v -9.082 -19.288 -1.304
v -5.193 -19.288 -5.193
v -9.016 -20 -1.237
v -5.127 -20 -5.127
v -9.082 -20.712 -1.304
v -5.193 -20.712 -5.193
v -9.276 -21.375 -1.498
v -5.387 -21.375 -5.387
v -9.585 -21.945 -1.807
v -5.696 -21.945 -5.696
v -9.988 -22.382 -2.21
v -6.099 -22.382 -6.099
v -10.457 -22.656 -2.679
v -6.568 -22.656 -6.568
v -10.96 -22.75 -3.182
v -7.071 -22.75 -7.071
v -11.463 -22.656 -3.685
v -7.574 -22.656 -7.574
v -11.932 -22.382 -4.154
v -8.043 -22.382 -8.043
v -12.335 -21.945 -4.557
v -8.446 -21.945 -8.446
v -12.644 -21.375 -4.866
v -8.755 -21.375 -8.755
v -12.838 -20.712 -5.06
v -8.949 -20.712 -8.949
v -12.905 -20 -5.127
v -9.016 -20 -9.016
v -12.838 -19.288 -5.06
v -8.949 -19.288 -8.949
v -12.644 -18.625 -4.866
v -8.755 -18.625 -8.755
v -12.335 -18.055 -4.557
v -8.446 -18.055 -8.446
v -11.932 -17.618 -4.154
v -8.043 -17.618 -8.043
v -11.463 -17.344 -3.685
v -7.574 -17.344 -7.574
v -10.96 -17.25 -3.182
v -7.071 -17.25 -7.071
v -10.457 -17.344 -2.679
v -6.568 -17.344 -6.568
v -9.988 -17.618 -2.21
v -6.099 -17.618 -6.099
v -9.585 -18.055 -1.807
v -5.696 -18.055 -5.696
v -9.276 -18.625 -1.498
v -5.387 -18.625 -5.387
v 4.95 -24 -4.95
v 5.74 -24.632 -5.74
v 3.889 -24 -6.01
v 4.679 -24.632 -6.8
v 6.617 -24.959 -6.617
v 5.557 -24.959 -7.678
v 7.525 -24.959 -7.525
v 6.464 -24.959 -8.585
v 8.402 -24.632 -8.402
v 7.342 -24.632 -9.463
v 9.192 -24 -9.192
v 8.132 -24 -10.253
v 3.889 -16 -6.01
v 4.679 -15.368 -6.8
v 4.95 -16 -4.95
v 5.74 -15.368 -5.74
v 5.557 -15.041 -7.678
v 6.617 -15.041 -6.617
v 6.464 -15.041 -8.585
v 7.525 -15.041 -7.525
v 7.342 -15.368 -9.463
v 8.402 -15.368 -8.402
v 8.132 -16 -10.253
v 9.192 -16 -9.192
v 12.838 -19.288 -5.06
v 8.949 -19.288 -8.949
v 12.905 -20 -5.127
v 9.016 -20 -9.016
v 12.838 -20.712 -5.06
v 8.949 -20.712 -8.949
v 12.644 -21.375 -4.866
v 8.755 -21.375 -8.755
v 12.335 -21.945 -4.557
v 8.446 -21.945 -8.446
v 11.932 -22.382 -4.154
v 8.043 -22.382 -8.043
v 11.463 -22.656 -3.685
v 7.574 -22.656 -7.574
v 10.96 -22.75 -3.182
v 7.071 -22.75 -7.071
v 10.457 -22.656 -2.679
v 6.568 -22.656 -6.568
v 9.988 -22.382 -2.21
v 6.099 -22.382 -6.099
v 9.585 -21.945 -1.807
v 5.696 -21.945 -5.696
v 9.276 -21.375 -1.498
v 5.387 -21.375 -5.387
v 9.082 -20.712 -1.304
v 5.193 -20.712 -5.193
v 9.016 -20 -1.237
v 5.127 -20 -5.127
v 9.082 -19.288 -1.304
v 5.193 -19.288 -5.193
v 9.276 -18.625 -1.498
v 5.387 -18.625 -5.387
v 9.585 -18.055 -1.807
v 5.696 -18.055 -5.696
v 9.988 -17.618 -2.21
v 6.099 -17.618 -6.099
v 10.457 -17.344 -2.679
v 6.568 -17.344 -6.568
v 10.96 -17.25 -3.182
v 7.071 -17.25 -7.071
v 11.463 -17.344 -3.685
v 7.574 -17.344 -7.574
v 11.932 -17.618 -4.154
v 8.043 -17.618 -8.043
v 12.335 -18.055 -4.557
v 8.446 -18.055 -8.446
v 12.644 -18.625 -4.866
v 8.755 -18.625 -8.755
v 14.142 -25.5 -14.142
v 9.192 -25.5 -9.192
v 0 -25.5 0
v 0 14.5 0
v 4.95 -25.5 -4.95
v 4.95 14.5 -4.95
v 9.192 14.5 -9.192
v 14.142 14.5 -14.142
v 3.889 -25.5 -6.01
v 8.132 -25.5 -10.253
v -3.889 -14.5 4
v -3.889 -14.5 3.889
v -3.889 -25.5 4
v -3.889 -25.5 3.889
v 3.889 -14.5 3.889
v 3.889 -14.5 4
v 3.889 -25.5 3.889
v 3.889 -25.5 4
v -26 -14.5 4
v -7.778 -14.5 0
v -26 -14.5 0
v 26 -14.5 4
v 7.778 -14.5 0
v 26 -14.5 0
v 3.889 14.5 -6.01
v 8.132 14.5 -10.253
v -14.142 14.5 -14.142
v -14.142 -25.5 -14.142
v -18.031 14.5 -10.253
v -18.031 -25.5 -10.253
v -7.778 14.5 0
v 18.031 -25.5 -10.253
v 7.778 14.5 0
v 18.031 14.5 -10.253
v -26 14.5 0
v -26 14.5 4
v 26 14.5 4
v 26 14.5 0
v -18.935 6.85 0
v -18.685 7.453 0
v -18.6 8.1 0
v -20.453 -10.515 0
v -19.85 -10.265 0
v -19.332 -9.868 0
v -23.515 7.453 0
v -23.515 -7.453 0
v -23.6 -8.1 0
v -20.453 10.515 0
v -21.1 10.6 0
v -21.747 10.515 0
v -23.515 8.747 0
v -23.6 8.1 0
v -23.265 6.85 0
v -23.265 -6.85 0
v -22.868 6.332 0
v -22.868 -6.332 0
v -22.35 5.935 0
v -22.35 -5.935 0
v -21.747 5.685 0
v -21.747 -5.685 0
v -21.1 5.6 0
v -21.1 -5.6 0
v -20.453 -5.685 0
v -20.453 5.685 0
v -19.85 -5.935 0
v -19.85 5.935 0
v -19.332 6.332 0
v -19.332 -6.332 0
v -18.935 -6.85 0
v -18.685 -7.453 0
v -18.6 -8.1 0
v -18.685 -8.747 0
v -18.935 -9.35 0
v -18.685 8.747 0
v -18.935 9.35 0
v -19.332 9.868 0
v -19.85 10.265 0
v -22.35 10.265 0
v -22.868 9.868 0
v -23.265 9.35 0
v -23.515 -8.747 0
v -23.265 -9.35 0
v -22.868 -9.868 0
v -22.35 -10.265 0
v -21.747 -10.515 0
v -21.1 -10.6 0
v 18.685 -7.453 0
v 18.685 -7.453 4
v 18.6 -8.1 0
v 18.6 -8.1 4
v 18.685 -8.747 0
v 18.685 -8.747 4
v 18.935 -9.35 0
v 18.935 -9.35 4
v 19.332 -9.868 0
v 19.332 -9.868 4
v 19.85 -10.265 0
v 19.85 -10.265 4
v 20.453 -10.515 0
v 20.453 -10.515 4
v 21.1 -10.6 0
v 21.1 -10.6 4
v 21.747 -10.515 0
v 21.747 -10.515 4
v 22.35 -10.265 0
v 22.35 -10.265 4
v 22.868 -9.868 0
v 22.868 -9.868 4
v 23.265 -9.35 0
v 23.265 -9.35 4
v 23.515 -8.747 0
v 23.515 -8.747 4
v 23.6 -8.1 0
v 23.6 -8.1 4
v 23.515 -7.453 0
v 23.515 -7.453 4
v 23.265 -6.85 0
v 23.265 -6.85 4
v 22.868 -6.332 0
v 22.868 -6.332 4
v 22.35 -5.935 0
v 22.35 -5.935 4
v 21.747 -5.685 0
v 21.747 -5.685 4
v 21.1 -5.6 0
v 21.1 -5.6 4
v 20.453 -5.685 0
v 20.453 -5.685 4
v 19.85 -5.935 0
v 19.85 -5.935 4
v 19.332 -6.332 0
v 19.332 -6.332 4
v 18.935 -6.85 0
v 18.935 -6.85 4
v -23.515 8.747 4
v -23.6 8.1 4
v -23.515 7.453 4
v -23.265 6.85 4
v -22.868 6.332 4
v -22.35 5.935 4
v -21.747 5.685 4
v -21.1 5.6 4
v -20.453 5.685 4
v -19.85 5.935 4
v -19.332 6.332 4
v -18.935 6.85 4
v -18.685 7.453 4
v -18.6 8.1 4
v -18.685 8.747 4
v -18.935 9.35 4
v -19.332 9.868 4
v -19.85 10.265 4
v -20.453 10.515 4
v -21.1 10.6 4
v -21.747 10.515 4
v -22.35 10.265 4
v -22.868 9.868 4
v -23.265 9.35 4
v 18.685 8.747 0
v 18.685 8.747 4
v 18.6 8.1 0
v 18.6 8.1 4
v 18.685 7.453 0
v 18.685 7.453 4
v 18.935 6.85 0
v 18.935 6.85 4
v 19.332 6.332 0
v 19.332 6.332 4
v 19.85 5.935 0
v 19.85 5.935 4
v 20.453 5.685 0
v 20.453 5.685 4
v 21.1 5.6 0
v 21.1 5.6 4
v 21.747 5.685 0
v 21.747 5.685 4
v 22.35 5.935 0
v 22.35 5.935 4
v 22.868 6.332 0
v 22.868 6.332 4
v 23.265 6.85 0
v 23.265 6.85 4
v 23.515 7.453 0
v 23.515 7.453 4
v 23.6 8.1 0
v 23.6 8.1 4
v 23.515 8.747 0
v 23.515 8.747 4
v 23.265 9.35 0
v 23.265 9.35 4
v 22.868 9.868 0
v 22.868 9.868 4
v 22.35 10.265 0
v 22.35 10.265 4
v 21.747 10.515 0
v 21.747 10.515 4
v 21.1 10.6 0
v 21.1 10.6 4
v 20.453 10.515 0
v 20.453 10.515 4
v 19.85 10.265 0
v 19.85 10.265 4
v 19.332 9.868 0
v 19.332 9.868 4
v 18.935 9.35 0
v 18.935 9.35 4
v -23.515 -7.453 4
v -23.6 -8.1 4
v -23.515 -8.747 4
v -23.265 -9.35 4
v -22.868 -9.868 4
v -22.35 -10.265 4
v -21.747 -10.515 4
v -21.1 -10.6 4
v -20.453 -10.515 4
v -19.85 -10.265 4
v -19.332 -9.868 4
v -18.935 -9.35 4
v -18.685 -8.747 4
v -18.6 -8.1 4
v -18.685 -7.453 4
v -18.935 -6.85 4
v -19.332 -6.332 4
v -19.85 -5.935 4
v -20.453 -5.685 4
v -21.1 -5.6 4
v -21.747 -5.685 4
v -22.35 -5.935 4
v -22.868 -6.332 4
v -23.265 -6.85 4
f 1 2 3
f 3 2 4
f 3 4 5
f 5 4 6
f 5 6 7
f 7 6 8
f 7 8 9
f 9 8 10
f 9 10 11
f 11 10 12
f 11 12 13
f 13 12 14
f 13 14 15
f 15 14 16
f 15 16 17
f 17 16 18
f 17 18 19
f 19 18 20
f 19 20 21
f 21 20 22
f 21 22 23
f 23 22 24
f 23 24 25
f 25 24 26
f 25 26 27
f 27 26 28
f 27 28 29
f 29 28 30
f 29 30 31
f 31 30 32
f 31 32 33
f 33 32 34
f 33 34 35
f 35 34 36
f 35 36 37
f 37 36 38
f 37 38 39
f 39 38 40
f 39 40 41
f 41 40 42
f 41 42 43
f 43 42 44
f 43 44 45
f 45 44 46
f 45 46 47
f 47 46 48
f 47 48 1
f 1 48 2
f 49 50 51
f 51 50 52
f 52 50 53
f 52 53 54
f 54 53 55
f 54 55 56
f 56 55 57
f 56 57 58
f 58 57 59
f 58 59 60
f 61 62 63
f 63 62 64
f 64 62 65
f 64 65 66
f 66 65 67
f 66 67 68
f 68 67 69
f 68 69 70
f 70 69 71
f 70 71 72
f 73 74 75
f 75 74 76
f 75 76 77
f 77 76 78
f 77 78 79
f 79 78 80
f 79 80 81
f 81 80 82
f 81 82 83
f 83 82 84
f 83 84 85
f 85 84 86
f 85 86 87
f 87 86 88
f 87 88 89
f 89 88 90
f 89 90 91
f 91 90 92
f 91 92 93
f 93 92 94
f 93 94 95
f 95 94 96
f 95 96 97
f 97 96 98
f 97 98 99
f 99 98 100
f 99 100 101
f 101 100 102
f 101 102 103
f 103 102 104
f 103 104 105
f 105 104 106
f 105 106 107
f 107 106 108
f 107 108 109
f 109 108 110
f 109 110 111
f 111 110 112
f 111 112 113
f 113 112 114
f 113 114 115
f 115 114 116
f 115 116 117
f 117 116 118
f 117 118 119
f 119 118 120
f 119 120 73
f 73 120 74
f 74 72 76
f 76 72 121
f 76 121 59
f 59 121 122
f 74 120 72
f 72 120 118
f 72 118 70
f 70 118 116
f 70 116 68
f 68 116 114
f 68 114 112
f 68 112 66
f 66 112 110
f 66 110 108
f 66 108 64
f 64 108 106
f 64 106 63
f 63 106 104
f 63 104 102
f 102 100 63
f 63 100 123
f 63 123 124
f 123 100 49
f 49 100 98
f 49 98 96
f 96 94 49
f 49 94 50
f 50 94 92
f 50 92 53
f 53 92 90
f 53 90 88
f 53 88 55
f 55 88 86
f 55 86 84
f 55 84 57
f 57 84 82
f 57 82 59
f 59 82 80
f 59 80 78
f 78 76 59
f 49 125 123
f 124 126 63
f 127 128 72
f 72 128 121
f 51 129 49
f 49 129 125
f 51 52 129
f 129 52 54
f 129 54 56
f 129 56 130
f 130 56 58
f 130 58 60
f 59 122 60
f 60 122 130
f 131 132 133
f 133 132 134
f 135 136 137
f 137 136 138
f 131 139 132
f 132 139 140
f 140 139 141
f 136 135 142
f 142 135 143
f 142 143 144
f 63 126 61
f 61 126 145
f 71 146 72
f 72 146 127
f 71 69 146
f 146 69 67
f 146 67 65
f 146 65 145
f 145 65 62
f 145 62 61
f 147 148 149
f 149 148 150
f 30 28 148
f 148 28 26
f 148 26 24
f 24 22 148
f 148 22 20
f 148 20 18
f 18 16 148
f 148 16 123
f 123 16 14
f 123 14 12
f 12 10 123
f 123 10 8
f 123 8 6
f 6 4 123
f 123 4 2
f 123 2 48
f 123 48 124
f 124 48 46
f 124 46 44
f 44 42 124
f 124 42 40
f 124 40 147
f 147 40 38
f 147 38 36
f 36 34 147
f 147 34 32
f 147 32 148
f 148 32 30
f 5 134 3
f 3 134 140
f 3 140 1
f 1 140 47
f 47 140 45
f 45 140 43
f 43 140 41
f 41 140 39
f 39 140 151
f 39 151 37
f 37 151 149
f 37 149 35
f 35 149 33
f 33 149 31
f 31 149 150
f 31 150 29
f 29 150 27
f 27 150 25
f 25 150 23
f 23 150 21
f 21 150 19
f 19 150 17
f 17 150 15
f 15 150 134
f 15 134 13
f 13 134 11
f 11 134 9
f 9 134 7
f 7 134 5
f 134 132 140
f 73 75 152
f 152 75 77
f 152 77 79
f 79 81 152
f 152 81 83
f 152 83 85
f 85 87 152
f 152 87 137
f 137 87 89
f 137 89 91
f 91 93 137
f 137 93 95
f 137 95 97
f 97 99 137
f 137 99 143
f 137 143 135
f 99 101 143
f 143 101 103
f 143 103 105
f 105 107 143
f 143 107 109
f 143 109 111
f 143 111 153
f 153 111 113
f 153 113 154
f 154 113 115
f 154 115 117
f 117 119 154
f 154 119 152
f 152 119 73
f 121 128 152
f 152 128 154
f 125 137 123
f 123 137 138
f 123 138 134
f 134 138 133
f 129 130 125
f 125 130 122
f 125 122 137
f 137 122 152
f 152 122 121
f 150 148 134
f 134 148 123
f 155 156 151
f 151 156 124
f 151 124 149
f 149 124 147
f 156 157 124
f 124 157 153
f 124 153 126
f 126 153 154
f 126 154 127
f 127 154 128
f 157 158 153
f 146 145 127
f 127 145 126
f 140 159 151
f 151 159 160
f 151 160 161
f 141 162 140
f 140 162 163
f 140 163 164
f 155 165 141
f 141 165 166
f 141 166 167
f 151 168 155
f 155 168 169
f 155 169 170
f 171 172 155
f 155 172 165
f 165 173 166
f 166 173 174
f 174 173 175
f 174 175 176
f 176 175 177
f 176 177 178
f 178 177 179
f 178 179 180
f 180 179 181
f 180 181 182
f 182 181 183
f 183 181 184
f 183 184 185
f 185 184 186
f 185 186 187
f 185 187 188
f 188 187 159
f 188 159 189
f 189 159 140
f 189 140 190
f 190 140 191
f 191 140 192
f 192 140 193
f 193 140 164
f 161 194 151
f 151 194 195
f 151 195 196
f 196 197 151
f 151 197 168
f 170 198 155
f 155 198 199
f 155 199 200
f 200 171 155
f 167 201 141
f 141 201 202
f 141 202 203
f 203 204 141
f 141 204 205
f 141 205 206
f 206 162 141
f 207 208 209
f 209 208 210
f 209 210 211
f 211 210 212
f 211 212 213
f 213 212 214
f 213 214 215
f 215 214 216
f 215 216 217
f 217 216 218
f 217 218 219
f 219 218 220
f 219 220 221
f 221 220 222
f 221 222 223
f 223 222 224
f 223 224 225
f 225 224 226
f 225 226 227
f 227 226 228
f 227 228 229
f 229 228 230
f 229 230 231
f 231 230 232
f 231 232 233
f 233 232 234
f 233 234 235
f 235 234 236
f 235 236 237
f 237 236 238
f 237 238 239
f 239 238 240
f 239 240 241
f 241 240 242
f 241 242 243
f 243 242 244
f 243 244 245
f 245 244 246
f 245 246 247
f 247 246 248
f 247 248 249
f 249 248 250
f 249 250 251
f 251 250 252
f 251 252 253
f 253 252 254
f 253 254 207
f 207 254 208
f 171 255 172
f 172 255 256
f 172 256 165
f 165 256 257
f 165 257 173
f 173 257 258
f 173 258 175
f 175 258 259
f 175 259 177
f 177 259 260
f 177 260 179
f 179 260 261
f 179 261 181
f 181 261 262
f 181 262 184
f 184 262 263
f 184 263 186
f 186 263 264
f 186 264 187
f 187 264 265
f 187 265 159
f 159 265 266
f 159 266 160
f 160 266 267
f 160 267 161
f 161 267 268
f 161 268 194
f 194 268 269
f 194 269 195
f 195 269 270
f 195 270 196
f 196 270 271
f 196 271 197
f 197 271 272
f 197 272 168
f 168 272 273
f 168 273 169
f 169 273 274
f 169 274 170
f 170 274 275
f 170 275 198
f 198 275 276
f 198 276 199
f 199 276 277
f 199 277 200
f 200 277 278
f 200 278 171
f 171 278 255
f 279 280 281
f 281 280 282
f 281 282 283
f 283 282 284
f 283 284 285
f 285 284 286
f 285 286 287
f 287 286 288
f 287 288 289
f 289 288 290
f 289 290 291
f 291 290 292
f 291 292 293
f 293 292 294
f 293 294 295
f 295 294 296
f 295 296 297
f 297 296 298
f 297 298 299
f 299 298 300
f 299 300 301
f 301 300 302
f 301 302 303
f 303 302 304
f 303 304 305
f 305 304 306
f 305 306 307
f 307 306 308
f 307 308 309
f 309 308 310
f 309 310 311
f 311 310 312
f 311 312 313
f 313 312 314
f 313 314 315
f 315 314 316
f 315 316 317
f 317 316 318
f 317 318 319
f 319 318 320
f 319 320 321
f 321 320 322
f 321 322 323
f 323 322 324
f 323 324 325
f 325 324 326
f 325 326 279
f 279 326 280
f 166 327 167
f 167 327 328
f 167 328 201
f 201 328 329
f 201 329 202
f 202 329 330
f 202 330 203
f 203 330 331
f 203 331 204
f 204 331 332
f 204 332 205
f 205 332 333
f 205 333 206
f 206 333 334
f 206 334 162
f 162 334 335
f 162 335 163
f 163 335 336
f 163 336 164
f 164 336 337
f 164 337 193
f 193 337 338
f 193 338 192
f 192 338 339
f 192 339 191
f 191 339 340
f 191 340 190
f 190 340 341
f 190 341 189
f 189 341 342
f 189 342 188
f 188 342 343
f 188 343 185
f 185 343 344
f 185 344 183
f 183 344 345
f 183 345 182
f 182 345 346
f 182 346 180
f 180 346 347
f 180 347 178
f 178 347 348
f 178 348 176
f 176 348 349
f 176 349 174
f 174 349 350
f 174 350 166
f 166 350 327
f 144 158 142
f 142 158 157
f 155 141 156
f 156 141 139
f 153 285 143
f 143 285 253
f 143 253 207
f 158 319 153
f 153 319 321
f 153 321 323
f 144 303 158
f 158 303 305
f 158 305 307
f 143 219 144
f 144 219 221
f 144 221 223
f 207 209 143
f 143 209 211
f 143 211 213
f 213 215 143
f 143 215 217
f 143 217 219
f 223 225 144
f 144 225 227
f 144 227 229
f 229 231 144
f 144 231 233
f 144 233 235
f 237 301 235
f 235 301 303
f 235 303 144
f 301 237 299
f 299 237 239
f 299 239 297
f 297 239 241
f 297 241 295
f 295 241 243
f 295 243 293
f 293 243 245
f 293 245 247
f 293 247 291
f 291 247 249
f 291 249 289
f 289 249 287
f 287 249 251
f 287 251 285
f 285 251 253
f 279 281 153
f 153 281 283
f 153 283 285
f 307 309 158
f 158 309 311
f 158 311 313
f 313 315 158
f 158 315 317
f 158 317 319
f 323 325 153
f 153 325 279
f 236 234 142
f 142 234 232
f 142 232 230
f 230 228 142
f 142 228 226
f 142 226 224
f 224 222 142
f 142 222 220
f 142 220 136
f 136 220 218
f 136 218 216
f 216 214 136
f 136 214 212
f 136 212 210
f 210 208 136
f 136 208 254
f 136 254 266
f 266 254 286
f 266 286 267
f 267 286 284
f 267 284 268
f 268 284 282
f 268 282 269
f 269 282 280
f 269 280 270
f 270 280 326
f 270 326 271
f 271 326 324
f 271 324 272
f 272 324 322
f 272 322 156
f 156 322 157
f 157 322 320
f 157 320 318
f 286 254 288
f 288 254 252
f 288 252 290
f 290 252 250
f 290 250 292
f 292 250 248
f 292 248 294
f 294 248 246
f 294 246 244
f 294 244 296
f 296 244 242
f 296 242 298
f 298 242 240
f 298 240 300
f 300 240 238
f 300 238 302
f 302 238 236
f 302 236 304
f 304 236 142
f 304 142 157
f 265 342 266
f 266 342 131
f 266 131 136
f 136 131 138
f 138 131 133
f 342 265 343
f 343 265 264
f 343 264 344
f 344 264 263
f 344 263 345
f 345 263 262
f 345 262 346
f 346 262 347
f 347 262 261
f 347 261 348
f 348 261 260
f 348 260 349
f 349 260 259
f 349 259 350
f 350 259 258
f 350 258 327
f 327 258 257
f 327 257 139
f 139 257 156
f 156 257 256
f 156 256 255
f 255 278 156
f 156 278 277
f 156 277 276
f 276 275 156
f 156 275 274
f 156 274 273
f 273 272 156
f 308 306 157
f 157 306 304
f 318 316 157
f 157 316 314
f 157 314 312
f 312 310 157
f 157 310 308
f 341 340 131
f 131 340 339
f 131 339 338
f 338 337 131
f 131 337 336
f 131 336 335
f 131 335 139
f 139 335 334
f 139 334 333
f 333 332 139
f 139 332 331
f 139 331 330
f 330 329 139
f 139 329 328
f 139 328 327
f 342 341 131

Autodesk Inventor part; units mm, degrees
ref_plane "YZ Plane" through (0, 0, 0) normal (1, 0, 0) x (0, 1, 0)
sketch "Sketch1" plane through (0, 0, 0) normal (0, 0, 1) x (1, 0, 0)
  line L0 (-26, 14.5) -> (26, 14.5)
  line L1 (26, 14.5) -> (26, -14.5)
  line L2 (26, -14.5) -> (-26, -14.5)
  line L3 (-26, -14.5) -> (-26, 14.5)
  line L4 (-26, 14.5) -> (26, -14.5) construction
  line L5 (26, 14.5) -> (-26, -14.5) construction
  point P0 (0, 0)
  dimension "d0" = 52
  dimension "d1" = 29
extrude "Extrusion1" add sketch "Sketch1" along normal blind 4
sketch "Sketch2" plane through (0, 0, 4) normal (0, 0, 1) x (1, 0, 0)
  line L0 (-21.1, 8.1) -> (21.1, 8.1)
  line L1 (21.1, 8.1) -> (21.1, -8.1)
  line L2 (21.1, -8.1) -> (-21.1, -8.1)
  line L3 (-21.1, -8.1) -> (-21.1, 8.1)
  line L4 (-21.1, 8.1) -> (21.1, -8.1) construction
  line L5 (21.1, 8.1) -> (-21.1, -8.1) construction
  point P0 (0, 0)
  dimension "d4" = 42.2
  dimension "d5" = 16.2
hole "Hole1" at (-21.1, 8.1, 4) at (21.1, 8.1, 4) at (21.1, -8.1, 4) at (-21.1, -8.1, 4) direction (0, 0, -1) diameter 5 end through all
ref_plane "Work Plane1" through (0, -14.5, 0) normal (1, 0, 0) x (0, 0, -1)
ref_plane "Work Plane2" through (0, 0, 0) normal (0.7071068, 0, -0.7071068) x (0, -1, 0)
ref_plane "Work Plane3" through (0, 0, 0) normal (-0.7071068, 0, -0.7071068) x (0, 1, 0)
sketch "Sketch4" plane through (0, 0, 0) normal (-0.7071068, 0, -0.7071068) x (0, 1, 0)
  line L0 (14.5, 15.5563) -> (14.5, -21.2132) projected
  line L1 (14.5, 0) -> (-25.5, 0)
  line L2 (-25.5, 0) -> (-25.5, 20)
  line L3 (-25.5, 20) -> (14.5, 20)
  line L4 (14.5, 20) -> (14.5, 0)
  point P0 (0, 0)
  dimension "d14" = 40
  dimension "d15" = 20
extrude "Extrusion2" add sketch "Sketch4" against normal blind 5.5
sketch "Sketch5" plane through (0, 0, 0) normal (0.7071068, 0, -0.7071068) x (0, -1, 0)
  line L0 (-14.5, -21.2132) -> (-14.5, 15.5563) projected
  line L1 (-14.5, 0) -> (25.5, 0)
  line L2 (25.5, 0) -> (25.5, 20)
  line L3 (25.5, 20) -> (-14.5, 20)
  line L4 (-14.5, 20) -> (-14.5, 0)
  point P0 (0, 0)
  dimension "d18" = 40
  dimension "d19" = 20
extrude "Extrusion3" add sketch "Sketch5" against normal blind 5.5
sketch "Sketch7" plane through (0, 0, 0) normal (-0.7071068, 0, -0.7071068) x (-0.7071068, 0, 0.7071068)
  line L0 (-20, 14.5) -> (0, 14.5) projected
  line L1 (-13, 14.5) -> (-13, -25.5)
  line L2 (0, -25.5) -> (-20, -25.5) projected
  line L3 (-7, 14.5) -> (-7, -25.5)
  line L4 (-20, -25.5) -> (-20, 14.5) projected
  line L5 (-13, 14.5) -> (-7, 14.5)
  line L6 (-13, -25.5) -> (-7, -25.5)
  point P0 (0, 0)
  dimension "d22" = 7
  dimension "d23" = 13
extrude "Extrusion4" add sketch "Sketch7" along normal blind 1.5 contours L0 L3 L2 L1
sketch "Sketch8" plane through (-26, -14.5, 4) normal (0, -1, 0) x (1, 0, 0)
  line L0 (22.1109, -0.1109) -> (26, -4)
  line L1 (26, -4) -> (29.8891, -0.1109)
  line L2 (29.8891, -0.1109) -> (29.8891, 0)
  line L3 (0, 0) -> (52, 0) projected
  line L4 (22.1109, -0.1109) -> (26, -4) projected
  line L5 (22.1109, -0.1109) -> (22.1109, 0)
  line L6 (22.1109, 0) -> (29.8891, 0)
extrude "Extrusion5" add sketch "Sketch8" along normal blind 11
sketch "Sketch9" plane through (-1.0607, 0, -1.0607) normal (-0.7071068, 0, -0.7071068) x (-0.7071068, 0, 0.7071068)
  line L0 (-13, -25.5) -> (-7, -25.5) projected
  line L1 (-20, -25.5) -> (-20, 14.5) projected
  point P0 (0, 0)
  point P1 (-10, -20)
  dimension "d28" = 5.5
  dimension "d29" = 10
hole "Hole2" at (6.0104, -20, -8.1317) direction (0.7071068, 0, 0.7071068) diameter 5.5 end through all counterbore diameter 10 counterbore depth 1.5
sketch "Sketch10" plane through (0, 0, 0) normal (0.7071068, 0, -0.7071068) x (-0.7071068, 0, -0.7071068)
  line L0 (20, -25.5) -> (20, 14.5) projected
  line L1 (0, -25.5) -> (20, -25.5) projected
  point P0 (0, 0)
  point P1 (10, -20)
  dimension "d37" = 10
  dimension "d38" = 5.5
hole "Hole3" at (-7.0711, -20, -7.0711) direction (-0.7071068, 0, 0.7071068) diameter 5.5 end through all
properties part number "Estrutura - suporteCam"
